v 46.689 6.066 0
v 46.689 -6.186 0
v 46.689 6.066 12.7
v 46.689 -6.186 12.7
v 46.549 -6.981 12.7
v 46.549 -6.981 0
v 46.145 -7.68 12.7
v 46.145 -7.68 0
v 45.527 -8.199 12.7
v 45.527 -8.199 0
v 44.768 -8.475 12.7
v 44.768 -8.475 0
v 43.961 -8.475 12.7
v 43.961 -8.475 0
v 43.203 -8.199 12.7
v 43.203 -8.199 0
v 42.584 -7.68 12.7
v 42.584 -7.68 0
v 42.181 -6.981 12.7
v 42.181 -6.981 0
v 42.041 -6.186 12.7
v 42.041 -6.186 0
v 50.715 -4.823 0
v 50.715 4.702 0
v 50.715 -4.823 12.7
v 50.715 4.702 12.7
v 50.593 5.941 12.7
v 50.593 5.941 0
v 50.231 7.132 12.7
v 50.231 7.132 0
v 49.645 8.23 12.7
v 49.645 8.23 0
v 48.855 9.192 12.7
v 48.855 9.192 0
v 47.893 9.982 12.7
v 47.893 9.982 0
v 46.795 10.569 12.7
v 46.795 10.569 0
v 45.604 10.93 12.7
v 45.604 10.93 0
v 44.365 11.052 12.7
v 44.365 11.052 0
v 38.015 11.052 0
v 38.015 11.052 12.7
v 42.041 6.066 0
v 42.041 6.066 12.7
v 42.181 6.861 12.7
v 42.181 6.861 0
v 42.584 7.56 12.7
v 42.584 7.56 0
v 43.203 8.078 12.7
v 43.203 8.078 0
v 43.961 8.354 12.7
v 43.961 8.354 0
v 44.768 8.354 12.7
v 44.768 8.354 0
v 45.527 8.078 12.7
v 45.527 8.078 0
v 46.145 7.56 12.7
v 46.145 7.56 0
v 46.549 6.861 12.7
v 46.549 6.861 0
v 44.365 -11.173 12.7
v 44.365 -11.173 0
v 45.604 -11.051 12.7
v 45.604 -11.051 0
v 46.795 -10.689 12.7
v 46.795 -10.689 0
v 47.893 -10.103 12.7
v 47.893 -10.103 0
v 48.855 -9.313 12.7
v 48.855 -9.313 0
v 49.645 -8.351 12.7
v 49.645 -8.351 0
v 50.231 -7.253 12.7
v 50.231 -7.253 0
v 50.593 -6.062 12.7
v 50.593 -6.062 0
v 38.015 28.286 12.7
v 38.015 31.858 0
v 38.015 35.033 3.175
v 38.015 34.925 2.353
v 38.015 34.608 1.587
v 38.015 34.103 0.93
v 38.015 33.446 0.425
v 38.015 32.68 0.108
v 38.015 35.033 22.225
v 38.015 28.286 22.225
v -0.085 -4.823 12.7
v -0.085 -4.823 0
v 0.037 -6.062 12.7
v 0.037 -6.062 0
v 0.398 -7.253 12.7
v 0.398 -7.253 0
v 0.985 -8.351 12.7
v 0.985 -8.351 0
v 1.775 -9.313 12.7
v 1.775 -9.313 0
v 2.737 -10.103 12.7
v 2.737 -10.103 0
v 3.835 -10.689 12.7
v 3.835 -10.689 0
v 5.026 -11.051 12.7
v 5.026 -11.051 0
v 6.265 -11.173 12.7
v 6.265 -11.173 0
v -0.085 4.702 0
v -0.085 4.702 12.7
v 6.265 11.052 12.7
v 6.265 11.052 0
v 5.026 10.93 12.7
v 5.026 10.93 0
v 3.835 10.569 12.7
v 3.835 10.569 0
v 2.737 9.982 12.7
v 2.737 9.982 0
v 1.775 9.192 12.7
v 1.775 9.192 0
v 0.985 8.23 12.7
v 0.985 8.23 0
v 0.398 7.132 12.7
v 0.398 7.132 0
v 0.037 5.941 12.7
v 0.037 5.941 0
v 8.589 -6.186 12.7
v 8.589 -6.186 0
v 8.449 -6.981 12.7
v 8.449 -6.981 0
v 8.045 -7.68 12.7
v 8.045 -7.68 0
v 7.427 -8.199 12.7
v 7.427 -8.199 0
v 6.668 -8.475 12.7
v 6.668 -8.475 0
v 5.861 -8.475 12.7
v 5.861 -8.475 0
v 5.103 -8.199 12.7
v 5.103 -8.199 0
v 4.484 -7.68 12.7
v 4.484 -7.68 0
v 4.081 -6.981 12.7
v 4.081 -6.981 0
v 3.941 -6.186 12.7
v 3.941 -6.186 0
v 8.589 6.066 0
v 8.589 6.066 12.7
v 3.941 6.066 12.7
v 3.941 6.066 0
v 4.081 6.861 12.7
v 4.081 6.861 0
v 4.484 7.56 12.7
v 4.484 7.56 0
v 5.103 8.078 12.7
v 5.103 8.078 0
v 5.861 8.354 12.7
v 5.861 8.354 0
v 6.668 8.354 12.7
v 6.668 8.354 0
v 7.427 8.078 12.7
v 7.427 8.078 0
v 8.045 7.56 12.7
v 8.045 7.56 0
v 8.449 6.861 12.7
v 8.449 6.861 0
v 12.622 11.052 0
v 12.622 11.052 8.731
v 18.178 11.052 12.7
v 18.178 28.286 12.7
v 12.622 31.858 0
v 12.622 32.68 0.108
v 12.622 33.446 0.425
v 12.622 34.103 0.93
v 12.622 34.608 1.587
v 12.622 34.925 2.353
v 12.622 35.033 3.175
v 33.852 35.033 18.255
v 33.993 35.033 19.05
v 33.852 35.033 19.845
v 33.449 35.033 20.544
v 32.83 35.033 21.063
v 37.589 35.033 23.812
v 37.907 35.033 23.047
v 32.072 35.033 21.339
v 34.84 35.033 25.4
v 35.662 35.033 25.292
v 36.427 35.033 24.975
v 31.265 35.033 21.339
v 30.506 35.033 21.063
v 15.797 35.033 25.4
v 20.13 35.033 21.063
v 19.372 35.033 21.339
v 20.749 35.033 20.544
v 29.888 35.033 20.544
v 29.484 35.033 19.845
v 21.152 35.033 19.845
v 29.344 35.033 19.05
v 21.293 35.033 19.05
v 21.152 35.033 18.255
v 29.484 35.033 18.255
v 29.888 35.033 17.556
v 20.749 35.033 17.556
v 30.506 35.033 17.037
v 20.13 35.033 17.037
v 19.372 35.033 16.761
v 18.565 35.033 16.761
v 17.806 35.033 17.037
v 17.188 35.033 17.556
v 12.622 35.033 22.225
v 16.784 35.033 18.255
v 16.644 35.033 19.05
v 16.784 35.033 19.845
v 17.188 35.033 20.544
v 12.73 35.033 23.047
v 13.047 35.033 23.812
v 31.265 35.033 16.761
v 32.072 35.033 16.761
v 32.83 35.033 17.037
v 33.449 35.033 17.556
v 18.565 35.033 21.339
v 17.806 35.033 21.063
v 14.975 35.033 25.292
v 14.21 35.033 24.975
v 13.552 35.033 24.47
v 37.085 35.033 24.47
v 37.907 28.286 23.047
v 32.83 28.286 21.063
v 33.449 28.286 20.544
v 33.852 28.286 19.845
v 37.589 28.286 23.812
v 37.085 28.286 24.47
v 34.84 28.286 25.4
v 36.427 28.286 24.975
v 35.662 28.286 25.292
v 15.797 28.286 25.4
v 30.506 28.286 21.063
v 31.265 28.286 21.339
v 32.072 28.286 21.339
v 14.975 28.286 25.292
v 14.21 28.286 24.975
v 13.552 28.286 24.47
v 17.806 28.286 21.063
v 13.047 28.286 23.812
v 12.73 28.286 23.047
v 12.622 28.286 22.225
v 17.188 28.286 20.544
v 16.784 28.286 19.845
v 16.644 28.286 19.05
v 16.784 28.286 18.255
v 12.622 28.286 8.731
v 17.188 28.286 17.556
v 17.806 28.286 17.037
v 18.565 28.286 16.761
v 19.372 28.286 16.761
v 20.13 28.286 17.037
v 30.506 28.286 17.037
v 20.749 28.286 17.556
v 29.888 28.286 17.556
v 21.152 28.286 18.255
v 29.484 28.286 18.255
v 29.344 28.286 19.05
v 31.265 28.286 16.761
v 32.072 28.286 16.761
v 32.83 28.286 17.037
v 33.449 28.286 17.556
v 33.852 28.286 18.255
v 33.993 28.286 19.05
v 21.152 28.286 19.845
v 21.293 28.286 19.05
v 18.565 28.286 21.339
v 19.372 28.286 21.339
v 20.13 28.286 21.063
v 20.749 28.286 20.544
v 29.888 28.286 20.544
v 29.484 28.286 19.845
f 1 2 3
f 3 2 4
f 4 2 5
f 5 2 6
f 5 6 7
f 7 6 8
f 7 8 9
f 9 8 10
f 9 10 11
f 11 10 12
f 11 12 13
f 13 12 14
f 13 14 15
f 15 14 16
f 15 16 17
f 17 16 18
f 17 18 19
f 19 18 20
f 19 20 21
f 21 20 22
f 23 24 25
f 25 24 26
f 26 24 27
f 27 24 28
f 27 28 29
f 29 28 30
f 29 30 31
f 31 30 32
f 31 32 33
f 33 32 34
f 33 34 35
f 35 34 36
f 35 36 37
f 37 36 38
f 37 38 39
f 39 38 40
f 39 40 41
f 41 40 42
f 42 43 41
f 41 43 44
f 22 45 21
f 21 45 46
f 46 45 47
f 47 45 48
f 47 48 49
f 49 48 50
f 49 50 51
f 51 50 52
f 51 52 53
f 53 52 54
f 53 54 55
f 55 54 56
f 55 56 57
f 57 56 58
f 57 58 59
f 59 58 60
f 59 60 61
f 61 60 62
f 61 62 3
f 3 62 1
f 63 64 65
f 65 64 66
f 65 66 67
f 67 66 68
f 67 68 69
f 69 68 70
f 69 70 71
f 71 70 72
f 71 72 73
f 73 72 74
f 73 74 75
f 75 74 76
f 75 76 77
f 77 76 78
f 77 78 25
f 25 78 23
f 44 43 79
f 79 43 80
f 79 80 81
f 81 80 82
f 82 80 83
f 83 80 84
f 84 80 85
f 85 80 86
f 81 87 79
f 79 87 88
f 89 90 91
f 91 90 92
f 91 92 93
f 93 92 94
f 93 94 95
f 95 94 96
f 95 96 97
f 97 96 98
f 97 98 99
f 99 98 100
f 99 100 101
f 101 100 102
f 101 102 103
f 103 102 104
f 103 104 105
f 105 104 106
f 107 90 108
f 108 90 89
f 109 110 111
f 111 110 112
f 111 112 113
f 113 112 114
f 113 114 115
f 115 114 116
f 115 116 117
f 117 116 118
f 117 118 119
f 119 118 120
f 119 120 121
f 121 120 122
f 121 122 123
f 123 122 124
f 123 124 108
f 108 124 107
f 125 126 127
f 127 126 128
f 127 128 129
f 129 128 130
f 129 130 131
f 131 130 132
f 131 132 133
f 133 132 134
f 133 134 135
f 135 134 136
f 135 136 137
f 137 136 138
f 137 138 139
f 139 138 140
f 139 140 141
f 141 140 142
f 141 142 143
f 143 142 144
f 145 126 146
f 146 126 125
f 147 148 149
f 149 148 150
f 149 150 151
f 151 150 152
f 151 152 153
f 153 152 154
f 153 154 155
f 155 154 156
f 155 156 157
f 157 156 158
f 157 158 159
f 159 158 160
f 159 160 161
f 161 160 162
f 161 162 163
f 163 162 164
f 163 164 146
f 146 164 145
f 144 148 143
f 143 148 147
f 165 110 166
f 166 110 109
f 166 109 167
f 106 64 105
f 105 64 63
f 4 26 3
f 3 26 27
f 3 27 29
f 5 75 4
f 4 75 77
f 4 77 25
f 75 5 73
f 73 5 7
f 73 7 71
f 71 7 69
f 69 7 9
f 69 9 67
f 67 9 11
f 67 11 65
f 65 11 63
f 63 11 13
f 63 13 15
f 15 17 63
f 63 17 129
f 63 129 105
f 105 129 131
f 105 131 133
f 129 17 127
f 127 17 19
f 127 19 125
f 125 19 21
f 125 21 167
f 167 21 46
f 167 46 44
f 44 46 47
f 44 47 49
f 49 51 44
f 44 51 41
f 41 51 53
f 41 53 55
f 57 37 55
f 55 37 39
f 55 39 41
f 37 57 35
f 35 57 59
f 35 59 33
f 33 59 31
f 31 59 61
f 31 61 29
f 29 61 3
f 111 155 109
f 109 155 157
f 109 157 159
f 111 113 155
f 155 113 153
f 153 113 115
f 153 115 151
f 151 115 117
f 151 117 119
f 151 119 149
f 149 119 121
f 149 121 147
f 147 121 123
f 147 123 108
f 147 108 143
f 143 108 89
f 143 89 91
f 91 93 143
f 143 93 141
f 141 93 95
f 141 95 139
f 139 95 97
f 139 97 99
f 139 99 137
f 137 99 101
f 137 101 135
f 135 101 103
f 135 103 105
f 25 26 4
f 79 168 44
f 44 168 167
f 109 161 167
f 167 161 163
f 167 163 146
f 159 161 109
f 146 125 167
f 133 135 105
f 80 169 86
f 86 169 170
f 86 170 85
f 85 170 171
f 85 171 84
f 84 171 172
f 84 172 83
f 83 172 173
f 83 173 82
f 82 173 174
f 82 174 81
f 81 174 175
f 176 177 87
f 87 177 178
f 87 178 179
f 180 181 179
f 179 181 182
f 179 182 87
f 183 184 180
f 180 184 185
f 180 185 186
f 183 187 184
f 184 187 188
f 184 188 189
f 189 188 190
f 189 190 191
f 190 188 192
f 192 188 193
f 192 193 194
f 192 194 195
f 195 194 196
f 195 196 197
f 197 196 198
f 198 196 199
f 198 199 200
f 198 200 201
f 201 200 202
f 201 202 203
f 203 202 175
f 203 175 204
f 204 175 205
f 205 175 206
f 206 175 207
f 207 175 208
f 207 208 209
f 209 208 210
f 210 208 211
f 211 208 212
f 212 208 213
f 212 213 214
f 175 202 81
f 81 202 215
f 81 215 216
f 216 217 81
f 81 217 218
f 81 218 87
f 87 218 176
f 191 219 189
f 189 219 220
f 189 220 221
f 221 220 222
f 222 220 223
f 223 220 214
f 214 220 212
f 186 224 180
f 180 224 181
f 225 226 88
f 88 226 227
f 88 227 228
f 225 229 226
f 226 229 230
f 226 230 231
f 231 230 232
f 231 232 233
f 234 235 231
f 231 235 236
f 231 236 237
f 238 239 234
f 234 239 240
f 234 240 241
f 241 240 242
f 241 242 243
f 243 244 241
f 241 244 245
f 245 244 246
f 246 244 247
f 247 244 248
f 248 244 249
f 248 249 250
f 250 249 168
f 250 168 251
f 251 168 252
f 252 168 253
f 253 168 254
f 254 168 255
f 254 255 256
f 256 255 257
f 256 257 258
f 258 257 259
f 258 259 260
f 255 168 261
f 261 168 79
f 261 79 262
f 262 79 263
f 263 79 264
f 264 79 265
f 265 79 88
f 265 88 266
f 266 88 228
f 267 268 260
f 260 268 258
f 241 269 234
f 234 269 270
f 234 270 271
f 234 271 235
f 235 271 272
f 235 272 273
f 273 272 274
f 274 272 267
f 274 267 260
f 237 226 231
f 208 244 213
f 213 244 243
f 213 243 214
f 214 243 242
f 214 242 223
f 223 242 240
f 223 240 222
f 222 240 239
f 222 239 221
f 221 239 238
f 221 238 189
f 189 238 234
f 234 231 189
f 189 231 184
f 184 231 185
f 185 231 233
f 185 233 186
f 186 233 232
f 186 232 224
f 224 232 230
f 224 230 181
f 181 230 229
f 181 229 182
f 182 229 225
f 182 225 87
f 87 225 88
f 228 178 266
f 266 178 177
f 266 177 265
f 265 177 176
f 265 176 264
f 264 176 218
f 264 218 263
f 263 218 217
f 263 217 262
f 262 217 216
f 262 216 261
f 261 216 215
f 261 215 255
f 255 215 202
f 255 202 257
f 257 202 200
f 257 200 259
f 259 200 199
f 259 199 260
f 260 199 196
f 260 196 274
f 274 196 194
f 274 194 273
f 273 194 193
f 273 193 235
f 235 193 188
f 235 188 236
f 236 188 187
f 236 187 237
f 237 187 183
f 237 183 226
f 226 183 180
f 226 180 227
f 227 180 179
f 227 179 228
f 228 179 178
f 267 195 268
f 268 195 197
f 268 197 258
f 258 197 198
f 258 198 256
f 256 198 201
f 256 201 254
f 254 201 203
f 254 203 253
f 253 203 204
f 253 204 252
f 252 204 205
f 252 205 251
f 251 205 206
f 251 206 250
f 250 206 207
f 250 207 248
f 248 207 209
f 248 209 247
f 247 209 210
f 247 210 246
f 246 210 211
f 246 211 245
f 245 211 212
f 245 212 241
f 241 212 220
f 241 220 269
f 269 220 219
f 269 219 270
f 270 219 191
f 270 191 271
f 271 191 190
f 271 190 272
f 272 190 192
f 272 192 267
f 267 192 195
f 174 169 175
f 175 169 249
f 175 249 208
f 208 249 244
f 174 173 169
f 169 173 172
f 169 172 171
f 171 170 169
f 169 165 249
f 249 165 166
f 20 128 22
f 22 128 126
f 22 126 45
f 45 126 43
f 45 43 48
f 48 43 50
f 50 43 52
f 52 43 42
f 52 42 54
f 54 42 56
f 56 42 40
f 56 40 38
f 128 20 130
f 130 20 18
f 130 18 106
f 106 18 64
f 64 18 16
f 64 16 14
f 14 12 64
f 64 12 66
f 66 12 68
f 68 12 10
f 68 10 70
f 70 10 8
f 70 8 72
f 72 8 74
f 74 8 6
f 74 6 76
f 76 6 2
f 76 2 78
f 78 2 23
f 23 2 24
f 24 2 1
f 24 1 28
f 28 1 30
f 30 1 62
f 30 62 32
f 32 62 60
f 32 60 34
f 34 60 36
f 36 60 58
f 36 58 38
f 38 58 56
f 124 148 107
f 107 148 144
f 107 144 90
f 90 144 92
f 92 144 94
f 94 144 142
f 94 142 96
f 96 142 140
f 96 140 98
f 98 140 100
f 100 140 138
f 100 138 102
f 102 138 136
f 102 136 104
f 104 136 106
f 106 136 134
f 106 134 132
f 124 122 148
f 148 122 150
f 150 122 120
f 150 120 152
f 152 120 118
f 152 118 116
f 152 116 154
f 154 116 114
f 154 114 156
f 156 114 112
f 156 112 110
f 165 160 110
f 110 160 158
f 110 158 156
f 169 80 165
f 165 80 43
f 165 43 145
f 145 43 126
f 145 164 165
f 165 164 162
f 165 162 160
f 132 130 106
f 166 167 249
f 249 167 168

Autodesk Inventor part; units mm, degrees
ref_plane "YZ Plane" through (0, 0, 0) normal (1, 0, 0) x (0, 1, 0)
ref_plane "XZ Plane" through (0, 0, 0) normal (0, 1, 0) x (-1, 0, 0)
ref_plane "XY Plane" through (0, 0, 0) normal (0, 0, 1) x (1, 0, 0)
sketch "Sketch1" plane through (0, 0, 0) normal (0, 0, 1) x (1, 0, 0)
  line L0 (-19.1352, -8.5102) -> (-19.1352, 8.3898) construction
  line L1 (-16.8111, -6.1861) -> (-16.8111, 6.0657)
  line L2 (-21.4593, 6.0657) -> (-21.4593, -6.1861)
  arc A0 (-21.4593, -6.1861) -> (-16.8111, -6.1861) centre (-19.1352, -6.1861) ccw
  arc A1 (-16.8111, 6.0657) -> (-21.4593, 6.0657) centre (-19.1352, 6.0657) ccw
  line L3 (18.9648, -8.5102) -> (18.9648, 8.3898) construction
  line L4 (21.2889, -6.1861) -> (21.2889, 6.0657)
  line L5 (16.6407, 6.0657) -> (16.6407, -6.1861)
  arc A2 (16.6407, -6.1861) -> (21.2889, -6.1861) centre (18.9648, -6.1861) ccw
  arc A3 (21.2889, 6.0657) -> (16.6407, 6.0657) centre (18.9648, 6.0657) ccw
  line L6 (-19.1352, 8.3898) -> (18.9648, 8.3898)
  line L7 (18.9648, -8.5102) -> (-19.1352, -8.5102)
  line L8 (25.3148, 11.0523) -> (-25.4852, 11.0523)
  line L9 (-25.4852, 11.0523) -> (-25.4852, -11.1727)
  line L10 (-25.4852, -11.1727) -> (25.3148, -11.1727)
  line L11 (25.3148, -11.1727) -> (25.3148, 11.0523)
  line L12 (25.3148, 11.0523) -> (-25.4852, -11.1727) construction
  line L13 (-25.4852, 11.0523) -> (25.3148, -11.1727) construction
  point P0 (0, 0)
  point P1 (-0.0852, -0.0602)
  point P2 (-19.1352, -0.0602)
  point P3 (18.9648, -0.0602)
  dimension "d0" = 4.6482
  dimension "d1" = 4.6482
  dimension "d2" = 50.8
  dimension "d3" = 22.225
extrude "Extrusion1" add sketch "Sketch1" along normal blind 12.7 contours L1 A1 L6 A3 L5 A2 L7 A0 | L11 L10 L9 L8
sketch "Sketch2" plane through (-25.4852, 11.0523, 0) normal (0, 1, 0) x (1, 0, 0)
  line L0 (0, 0) -> (50.8, 0) projected
  line L1 (0, 0) -> (12.7, 0)
  line L2 (12.7, 0) -> (12.7, -12.7)
  line L3 (12.7, -12.7) -> (0, -12.7)
  line L4 (0, -12.7) -> (0, 0)
  line L5 (50.8073, 0) -> (38.1073, 0)
  line L6 (38.1073, 0) -> (38.1073, -12.7)
  line L7 (38.1073, -12.7) -> (50.8073, -12.7)
  line L8 (50.8, 0) -> (50.8, -12.7) projected
  line L9 (50.8, 0) -> (50.8, -12.7) projected
  line L10 (50.8, -12.7) -> (50.8, 0)
  line L11 (50.8, 0) -> (38.1073, 0)
  point P0 (25.4852, 0)
  dimension "d7" = 12.7
  dimension "d8" = 12.7
  dimension "d9" = 12.7
  dimension "d10" = 12.7
extrude "Extrusion2" add sketch "Sketch2" along normal blind 22.3933
chamfer "Chamfer1" distance 3.9688 distance2 5.5563 1 edges at (12.6221, 22.2489, 12.7) measured on face at (12.6221, 18.5167, 4.2333)
chamfer "Chamfer2" distance 4.7625 distance2 7.9375 1 edges at (-12.7852, 22.2489, 0) measured on face at (-12.7852, 18.5167, 8.4667)
sketch "Sketch3" plane through (-25.4852, 33.4456, 0) normal (0, 1, 0) x (1, 0, 0)
  line L0 (0, 0) -> (6.319, 0)
  line L1 (38.1073, 0) -> (4.7625, 0) projected
  line L2 (6.319, -0.6519) -> (0, -0.6519)
  line L3 (0, 0) -> (0, -12.7) projected
  line L4 (0, 0) -> (0, -0.6519)
  line L5 (6.319, 0) -> (6.319, -0.6519)
  point P0 (25.4852, 0)
extrude "Extrusion3" cut sketch "Sketch3" against normal up to surface (22.3933 mm away)
fillet "Fillet2" radius 3.175 2 edges at (-19.6363, 22.2489, 0.6519) (-25.4852, 22.2489, 0.6519)
sketch "Sketch4" plane through (0, 0, 12.7) normal (0, 0, 1) x (1, 0, 0)
  line L0 (-12.7852, 11.0523) -> (-18.8822, 11.0523) projected
  line L1 (-12.7852, 11.0523) -> (-12.7852, 26.6987)
  line L2 (-12.7852, 33.4456) -> (-12.7852, 11.0523) projected
  line L3 (-12.7852, 11.0523) -> (25.3148, 11.0523)
  line L4 (25.3148, -11.1727) -> (25.3148, 33.4456) projected
  line L5 (25.3148, 11.0523) -> (25.3148, 26.6987)
  line L6 (12.6221, 33.4456) -> (12.6221, 11.0523) projected
  line L7 (-25.4852, -11.1727) -> (-25.4852, 33.4456) projected
  line L8 (25.3148, 26.6987) -> (12.6221, 26.6987)
  line L9 (12.6221, 26.6987) -> (12.6221, 36.2237)
  line L10 (25.3148, 36.2237) -> (25.3148, 26.6987)
  line L11 (-12.7852, 26.6987) -> (-25.4852, 26.6987)
  line L12 (-25.4852, 26.6987) -> (-25.4852, 36.2237)
  line L13 (-12.7852, 36.2237) -> (-12.7852, 26.6987)
  line L14 (18.1783, 33.4456) -> (12.6221, 33.4456) projected
  line L15 (25.3148, 33.4456) -> (12.6221, 33.4456)
  line L16 (-12.7852, 36.2237) -> (-12.7852, 33.4456)
  line L17 (-25.4852, 33.4456) -> (-12.7852, 33.4456) projected
  line L18 (-12.7852, 33.4456) -> (-25.4852, 33.4456)
  line L19 (-25.4852, 33.4456) -> (-25.4852, 36.2237)
  line L20 (12.6221, 33.4456) -> (12.6221, 26.6987)
  line L21 (25.3148, 26.6987) -> (25.3148, 33.4456)
  line L22 (-12.7852, 26.6987) -> (-12.7852, 33.4456)
  line L23 (-25.4852, 26.6987) -> (-25.4852, 33.4456)
  point P0 (0, 0)
  dimension "d22" = 15.6464
extrude "Extrusion4" add sketch "Sketch4" along normal blind 12.7 contours L2 L11 L7 L17 | L6 L14 L15 L4 L8
extrude "Extrusion5" add sketch "Sketch4" against normal blind 4.2333 contours L6 L14 L15 L4 L8
sketch "Sketch5" plane through (-25.4852, 33.4456, 0) normal (0, 1, 0) x (1, 0, 0)
  line L0 (50.8, -25.4) -> (38.1073, -25.4) projected
  line L1 (12.7, -25.4) -> (0, -25.4) projected
  line L2 (44.4537, -25.4) -> (44.4537, -19.05)
  line L3 (6.35, -25.4) -> (6.35, -19.05)
  circle A0 centre (6.35, -19.05) radius 2.3241
  circle A1 centre (44.4537, -19.05) radius 2.3241
  point P0 (25.4852, 0)
  dimension "d27" = 6.35
  dimension "d28" = 6.35
  dimension "d29" = 4.6482
  dimension "d30" = 4.6482
extrude "Extrusion6" cut sketch "Sketch5" against normal through all
sketch "Sketch6" plane through (-12.7852, 11.0523, 12.7) normal (1, 0, 0) x (0, 0, -1)
  line L0 (-12.7, 15.6464) -> (-12.7, 22.3933) projected
  line L1 (0, 15.6464) -> (-12.7, 15.6464) projected
  line L2 (-12.7, 15.6464) -> (-12.7, 22.3933)
  line L3 (-12.7, 22.3933) -> (0, 22.3933)
  line L4 (0, 22.3933) -> (0, 15.6464)
  line L5 (0, 15.6464) -> (-12.7, 15.6464)
  point P0 (12.7, -11.0523)
extrude "Extrusion7" [suppressed]
sketch "Sketch7" plane through (18.1783, 26.6987, 12.7) normal (0, -1, 0) x (1, 0, 0)
  circle A0 centre (-37.3136, 6.35) radius 2.3241 projected
  circle A1 centre (0.7901, 6.35) radius 2.3241 projected
  line L0 (-37.3136, 6.35) -> (-24.6136, 6.35)
  line L1 (-24.6136, 6.35) -> (-11.9136, 6.35)
  line L2 (-26.798, 4.1656) -> (-22.4292, 4.1656)
  line L3 (-22.4292, 4.1656) -> (-22.4292, 8.5344)
  line L4 (-22.4292, 8.5344) -> (-26.798, 8.5344)
  line L5 (-26.798, 8.5344) -> (-26.798, 4.1656)
  line L6 (-26.798, 4.1656) -> (-22.4292, 8.5344) construction
  line L7 (-22.4292, 4.1656) -> (-26.798, 8.5344) construction
  line L8 (-9.7292, 8.5344) -> (-14.098, 8.5344)
  line L9 (-9.7292, 4.1656) -> (-9.7292, 8.5344)
  line L10 (-14.098, 4.1656) -> (-9.7292, 4.1656)
  line L11 (-14.098, 8.5344) -> (-14.098, 4.1656)
  point P0 (-18.1783, -12.7)
  dimension "d35" = 12.7
  dimension "d36" = 12.7
  dimension "d37" = 4.3688
  dimension "d38" = 4.3688
  dimension "d41" = 12.7
extrude "Extrusion8" [suppressed]
fillet "Fillet3" [suppressed]
sketch "Sketch8" plane through (-25.4852, 11.0523, 0) normal (0, 1, 0) x (1, 0, 0)
  line L0 (38.1073, 0) -> (0, 0) projected
  line L1 (0, 0) -> (14.6548, 0)
  line L2 (14.6548, 0) -> (14.6548, -26.951)
  line L3 (14.6548, -26.951) -> (0, -26.951)
  line L4 (0, -26.951) -> (0, 0)
  point P0 (25.4852, 0)
  point P1 (14.6548, 0)
extrude "Extrusion9" cut sketch "Sketch8" along normal blind 25.4
sketch "Sketch9" plane through (25.3148, -11.1727, 12.7) normal (1, 0, 0) x (0, 0, -1)
  line L0 (0, 0) -> (0, 37.8714) projected
  line L1 (12.7, 0) -> (0, 0) projected
  line L2 (12.7, 0) -> (12.7, 44.6183) projected
  line L3 (12.7, 44.6183) -> (-12.7, 44.6183) projected
  line L4 (-12.7, 37.8714) -> (-12.7, 44.6183) projected
  line L5 (0, 37.8714) -> (-12.7, 37.8714) projected
  point P0 (12.7, 11.1727)
extrude "Extrusion10" add sketch "Sketch9" along normal blind 12.7
sketch "Sketch10" plane through (-25.4852, 33.4456, 0) normal (0, 1, 0) x (1, 0, 0)
  circle A0 centre (44.4537, -19.05) radius 2.3241 projected
  line L0 (44.4537, -19.05) -> (57.1537, -19.05)
  circle A1 centre (57.1537, -19.05) radius 2.3241
  point P0 (25.4852, 0)
  dimension "d58" = 12.7
  dimension "d59" = 4.6482
extrude "Extrusion11" cut sketch "Sketch10" against normal blind 12.7 contours A1
fillet "Fillet9" radius 3.175 2 edges at (12.6221, 30.0721, 25.4) (38.0148, 30.0721, 25.4)
fillet "Fillet10" radius 6.35 3 edges at (-25.4852, 11.0523, 6.35) (-25.4852, -11.1727, 6.35) (38.0148, -11.1727, 6.35)
sketch "Sketch11" plane through (-25.4852, 33.4456, 0) normal (0, 1, 0) x (1, 0, 0)
  arc A0 (60.325, -25.4) -> (63.5, -22.225) centre (60.325, -22.225) ccw projected
  line L0 (63.5, 0) -> (63.5, -22.225) projected
  line L1 (38.1073, 0) -> (63.5, 0) projected
  line L2 (38.1073, 0) -> (38.1073, -22.225) projected
  arc A1 (38.1073, -22.225) -> (41.2823, -25.4) centre (41.2823, -22.225) ccw projected
  line L3 (41.2823, -25.4) -> (60.325, -25.4) projected
  circle A2 centre (57.1537, -19.05) radius 2.3241 projected
  circle A3 centre (44.4537, -19.05) radius 2.3241 projected
  point P0 (25.4852, 0)
extrude "Extrusion12" add sketch "Sketch11" along normal blind 1.5875
sketch "Sketch12" plane through (18.1783, 26.6987, 12.7) normal (0, -1, 0) x (1, 0, 0)
  circle A0 centre (13.4901, 6.35) radius 2.3241 projected
  circle A1 centre (0.7901, 6.35) radius 2.3241 projected
  arc A2 (19.8364, 9.525) -> (16.6614, 12.7) centre (16.6614, 9.525) ccw projected
  line L0 (-2.3813, 12.7) -> (16.6614, 12.7) projected
  arc A3 (-2.3813, 12.7) -> (-5.5563, 9.525) centre (-2.3813, 9.525) ccw projected
  line L1 (-5.5563, -3.9688) -> (-5.5563, 9.525) projected
  line L2 (0, 0) -> (-5.5563, -3.9688) projected
  line L3 (19.8364, 0) -> (0, 0) projected
  line L4 (19.8364, 9.525) -> (19.8364, 0) projected
  point P0 (-18.1783, -12.7)
extrude "Extrusion13" cut sketch "Sketch12" against normal blind 1.5875
fillet "Fillet12" radius 3.175 1 edges at (25.3184, 35.0331, 0)
sketch "Sketch13" plane through (0, 0, 12.7) normal (0, 0, 1) x (1, 0, 0)
  arc A0 (31.6648, -11.1727) -> (38.0148, -4.8227) centre (31.6648, -4.8227) ccw projected
  line L0 (38.0148, 28.2862) -> (38.0148, -4.8227) projected
  line L1 (38.0148, 28.2862) -> (18.1783, 28.2862) projected
  line L2 (18.1783, 11.0523) -> (18.1783, 28.2862) projected
  line L3 (18.1783, 11.0523) -> (-19.1352, 11.0523) projected
  arc A1 (-19.1352, 11.0523) -> (-25.4852, 4.7023) centre (-19.1352, 4.7023) ccw projected
  line L4 (-25.4852, -4.8227) -> (-25.4852, 4.7023) projected
  arc A2 (-25.4852, -4.8227) -> (-19.1352, -11.1727) centre (-19.1352, -4.8227) ccw projected
  line L5 (-19.1352, -11.1727) -> (31.6648, -11.1727) projected
  arc A3 (16.6407, -6.1861) -> (21.2889, -6.1861) centre (18.9648, -6.1861) ccw projected
  line L6 (16.6407, -6.1861) -> (16.6407, 6.0657) projected
  arc A4 (21.2889, 6.0657) -> (16.6407, 6.0657) centre (18.9648, 6.0657) ccw projected
  line L7 (21.2889, 6.0657) -> (21.2889, -6.1861) projected
  arc A5 (-21.4593, -6.1861) -> (-16.8111, -6.1861) centre (-19.1352, -6.1861) ccw projected
  line L8 (-21.4593, -6.1861) -> (-21.4593, 6.0657) projected
  arc A6 (-16.8111, 6.0657) -> (-21.4593, 6.0657) centre (-19.1352, 6.0657) ccw projected
  line L9 (-16.8111, 6.0657) -> (-16.8111, -6.1861) projected
  line L10 (-19.1352, 6.0657) -> (-19.1352, -6.1861) construction
  line L11 (-21.4593, 6.0657) -> (-21.4593, -6.1861)
  line L12 (-16.8111, -6.1861) -> (-16.8111, 6.0657)
  arc A7 (-16.8111, 6.0657) -> (-21.4593, 6.0657) centre (-19.1352, 6.0657) ccw
  arc A8 (-21.4593, -6.1861) -> (-16.8111, -6.1861) centre (-19.1352, -6.1861) ccw
  line L13 (-19.1352, -0.0602) -> (-18.0483, -0.0602)
  arc A9 (8.5889, 6.0657) -> (3.9407, 6.0657) centre (6.2648, 6.0657) ccw
  line L14 (8.5889, -6.1861) -> (8.5889, 6.0657)
  line L15 (3.9407, 6.0657) -> (3.9407, -6.1861)
  arc A10 (3.9407, -6.1861) -> (8.5889, -6.1861) centre (6.2648, -6.1861) ccw
  arc A11 (46.6889, 6.0657) -> (42.0407, 6.0657) centre (44.3648, 6.0657) ccw
  line L16 (46.6889, -6.1861) -> (46.6889, 6.0657)
  arc A12 (42.0407, -6.1861) -> (46.6889, -6.1861) centre (44.3648, -6.1861) ccw
  line L17 (42.0407, 6.0657) -> (42.0407, -6.1861)
  line L18 (18.9648, -0.0602) -> (20.0517, -0.0602)
  line L19 (-25.4852, 4.7023) -> (-25.4852, -4.8227) projected
  line L20 (-25.4852, -4.8227) -> (-25.4852, 4.7023)
  arc A13 (-19.1352, 11.0523) -> (-25.4852, 4.7023) centre (-19.1352, 4.7023) ccw
  arc A14 (-25.4852, -4.8227) -> (-19.1352, -11.1727) centre (-19.1352, -4.8227) ccw
  arc A15 (6.2648, 11.0523) -> (-0.0852, 4.7023) centre (6.2648, 4.7023) ccw
  line L21 (-0.0852, -4.8227) -> (-0.0852, 4.7023)
  arc A16 (-0.0852, -4.8227) -> (6.2648, -11.1727) centre (6.2648, -4.8227) ccw
  line L22 (6.2648, -0.0602) -> (25.3148, -0.0602)
  line L23 (25.3148, -0.0602) -> (25.3148, 2.455)
  arc A17 (50.7148, 4.7023) -> (44.3648, 11.0523) centre (44.3648, 4.7023) ccw
  line L24 (50.7148, -4.8227) -> (50.7148, 4.7023)
  arc A18 (44.3648, -11.1727) -> (50.7148, -4.8227) centre (44.3648, -4.8227) ccw
  line L25 (6.2648, 11.0523) -> (44.3648, 11.0523)
  line L26 (44.3648, -11.1727) -> (6.2648, -11.1727)
  point P0 (0, 0)
  point P1 (6.2648, 11.0523)
  point P2 (6.2648, -11.1727)
  point P3 (38.0148, 11.0523)
  point P4 (31.6648, -11.1727)
  dimension "d73" = 25.4
  dimension "d80" = 38.1
  dimension "d87" = 25.4
  dimension "d92" = 19.05
extrude "Extrusion14" cut sketch "Sketch13" against normal blind 25.4 contours L5 A2 L4 A1 L3 A15 L21 A16 | L14 A10 L15 A9
extrude "Extrusion15" add sketch "Sketch13" against normal up to surface (12.7 mm away) contours A0 L0 L25 A17 L24 A18 L26 | L6 L22 L18 L7 A3 | L6 A4 L7 L22 L18
properties part number "Optical Mount 24"
